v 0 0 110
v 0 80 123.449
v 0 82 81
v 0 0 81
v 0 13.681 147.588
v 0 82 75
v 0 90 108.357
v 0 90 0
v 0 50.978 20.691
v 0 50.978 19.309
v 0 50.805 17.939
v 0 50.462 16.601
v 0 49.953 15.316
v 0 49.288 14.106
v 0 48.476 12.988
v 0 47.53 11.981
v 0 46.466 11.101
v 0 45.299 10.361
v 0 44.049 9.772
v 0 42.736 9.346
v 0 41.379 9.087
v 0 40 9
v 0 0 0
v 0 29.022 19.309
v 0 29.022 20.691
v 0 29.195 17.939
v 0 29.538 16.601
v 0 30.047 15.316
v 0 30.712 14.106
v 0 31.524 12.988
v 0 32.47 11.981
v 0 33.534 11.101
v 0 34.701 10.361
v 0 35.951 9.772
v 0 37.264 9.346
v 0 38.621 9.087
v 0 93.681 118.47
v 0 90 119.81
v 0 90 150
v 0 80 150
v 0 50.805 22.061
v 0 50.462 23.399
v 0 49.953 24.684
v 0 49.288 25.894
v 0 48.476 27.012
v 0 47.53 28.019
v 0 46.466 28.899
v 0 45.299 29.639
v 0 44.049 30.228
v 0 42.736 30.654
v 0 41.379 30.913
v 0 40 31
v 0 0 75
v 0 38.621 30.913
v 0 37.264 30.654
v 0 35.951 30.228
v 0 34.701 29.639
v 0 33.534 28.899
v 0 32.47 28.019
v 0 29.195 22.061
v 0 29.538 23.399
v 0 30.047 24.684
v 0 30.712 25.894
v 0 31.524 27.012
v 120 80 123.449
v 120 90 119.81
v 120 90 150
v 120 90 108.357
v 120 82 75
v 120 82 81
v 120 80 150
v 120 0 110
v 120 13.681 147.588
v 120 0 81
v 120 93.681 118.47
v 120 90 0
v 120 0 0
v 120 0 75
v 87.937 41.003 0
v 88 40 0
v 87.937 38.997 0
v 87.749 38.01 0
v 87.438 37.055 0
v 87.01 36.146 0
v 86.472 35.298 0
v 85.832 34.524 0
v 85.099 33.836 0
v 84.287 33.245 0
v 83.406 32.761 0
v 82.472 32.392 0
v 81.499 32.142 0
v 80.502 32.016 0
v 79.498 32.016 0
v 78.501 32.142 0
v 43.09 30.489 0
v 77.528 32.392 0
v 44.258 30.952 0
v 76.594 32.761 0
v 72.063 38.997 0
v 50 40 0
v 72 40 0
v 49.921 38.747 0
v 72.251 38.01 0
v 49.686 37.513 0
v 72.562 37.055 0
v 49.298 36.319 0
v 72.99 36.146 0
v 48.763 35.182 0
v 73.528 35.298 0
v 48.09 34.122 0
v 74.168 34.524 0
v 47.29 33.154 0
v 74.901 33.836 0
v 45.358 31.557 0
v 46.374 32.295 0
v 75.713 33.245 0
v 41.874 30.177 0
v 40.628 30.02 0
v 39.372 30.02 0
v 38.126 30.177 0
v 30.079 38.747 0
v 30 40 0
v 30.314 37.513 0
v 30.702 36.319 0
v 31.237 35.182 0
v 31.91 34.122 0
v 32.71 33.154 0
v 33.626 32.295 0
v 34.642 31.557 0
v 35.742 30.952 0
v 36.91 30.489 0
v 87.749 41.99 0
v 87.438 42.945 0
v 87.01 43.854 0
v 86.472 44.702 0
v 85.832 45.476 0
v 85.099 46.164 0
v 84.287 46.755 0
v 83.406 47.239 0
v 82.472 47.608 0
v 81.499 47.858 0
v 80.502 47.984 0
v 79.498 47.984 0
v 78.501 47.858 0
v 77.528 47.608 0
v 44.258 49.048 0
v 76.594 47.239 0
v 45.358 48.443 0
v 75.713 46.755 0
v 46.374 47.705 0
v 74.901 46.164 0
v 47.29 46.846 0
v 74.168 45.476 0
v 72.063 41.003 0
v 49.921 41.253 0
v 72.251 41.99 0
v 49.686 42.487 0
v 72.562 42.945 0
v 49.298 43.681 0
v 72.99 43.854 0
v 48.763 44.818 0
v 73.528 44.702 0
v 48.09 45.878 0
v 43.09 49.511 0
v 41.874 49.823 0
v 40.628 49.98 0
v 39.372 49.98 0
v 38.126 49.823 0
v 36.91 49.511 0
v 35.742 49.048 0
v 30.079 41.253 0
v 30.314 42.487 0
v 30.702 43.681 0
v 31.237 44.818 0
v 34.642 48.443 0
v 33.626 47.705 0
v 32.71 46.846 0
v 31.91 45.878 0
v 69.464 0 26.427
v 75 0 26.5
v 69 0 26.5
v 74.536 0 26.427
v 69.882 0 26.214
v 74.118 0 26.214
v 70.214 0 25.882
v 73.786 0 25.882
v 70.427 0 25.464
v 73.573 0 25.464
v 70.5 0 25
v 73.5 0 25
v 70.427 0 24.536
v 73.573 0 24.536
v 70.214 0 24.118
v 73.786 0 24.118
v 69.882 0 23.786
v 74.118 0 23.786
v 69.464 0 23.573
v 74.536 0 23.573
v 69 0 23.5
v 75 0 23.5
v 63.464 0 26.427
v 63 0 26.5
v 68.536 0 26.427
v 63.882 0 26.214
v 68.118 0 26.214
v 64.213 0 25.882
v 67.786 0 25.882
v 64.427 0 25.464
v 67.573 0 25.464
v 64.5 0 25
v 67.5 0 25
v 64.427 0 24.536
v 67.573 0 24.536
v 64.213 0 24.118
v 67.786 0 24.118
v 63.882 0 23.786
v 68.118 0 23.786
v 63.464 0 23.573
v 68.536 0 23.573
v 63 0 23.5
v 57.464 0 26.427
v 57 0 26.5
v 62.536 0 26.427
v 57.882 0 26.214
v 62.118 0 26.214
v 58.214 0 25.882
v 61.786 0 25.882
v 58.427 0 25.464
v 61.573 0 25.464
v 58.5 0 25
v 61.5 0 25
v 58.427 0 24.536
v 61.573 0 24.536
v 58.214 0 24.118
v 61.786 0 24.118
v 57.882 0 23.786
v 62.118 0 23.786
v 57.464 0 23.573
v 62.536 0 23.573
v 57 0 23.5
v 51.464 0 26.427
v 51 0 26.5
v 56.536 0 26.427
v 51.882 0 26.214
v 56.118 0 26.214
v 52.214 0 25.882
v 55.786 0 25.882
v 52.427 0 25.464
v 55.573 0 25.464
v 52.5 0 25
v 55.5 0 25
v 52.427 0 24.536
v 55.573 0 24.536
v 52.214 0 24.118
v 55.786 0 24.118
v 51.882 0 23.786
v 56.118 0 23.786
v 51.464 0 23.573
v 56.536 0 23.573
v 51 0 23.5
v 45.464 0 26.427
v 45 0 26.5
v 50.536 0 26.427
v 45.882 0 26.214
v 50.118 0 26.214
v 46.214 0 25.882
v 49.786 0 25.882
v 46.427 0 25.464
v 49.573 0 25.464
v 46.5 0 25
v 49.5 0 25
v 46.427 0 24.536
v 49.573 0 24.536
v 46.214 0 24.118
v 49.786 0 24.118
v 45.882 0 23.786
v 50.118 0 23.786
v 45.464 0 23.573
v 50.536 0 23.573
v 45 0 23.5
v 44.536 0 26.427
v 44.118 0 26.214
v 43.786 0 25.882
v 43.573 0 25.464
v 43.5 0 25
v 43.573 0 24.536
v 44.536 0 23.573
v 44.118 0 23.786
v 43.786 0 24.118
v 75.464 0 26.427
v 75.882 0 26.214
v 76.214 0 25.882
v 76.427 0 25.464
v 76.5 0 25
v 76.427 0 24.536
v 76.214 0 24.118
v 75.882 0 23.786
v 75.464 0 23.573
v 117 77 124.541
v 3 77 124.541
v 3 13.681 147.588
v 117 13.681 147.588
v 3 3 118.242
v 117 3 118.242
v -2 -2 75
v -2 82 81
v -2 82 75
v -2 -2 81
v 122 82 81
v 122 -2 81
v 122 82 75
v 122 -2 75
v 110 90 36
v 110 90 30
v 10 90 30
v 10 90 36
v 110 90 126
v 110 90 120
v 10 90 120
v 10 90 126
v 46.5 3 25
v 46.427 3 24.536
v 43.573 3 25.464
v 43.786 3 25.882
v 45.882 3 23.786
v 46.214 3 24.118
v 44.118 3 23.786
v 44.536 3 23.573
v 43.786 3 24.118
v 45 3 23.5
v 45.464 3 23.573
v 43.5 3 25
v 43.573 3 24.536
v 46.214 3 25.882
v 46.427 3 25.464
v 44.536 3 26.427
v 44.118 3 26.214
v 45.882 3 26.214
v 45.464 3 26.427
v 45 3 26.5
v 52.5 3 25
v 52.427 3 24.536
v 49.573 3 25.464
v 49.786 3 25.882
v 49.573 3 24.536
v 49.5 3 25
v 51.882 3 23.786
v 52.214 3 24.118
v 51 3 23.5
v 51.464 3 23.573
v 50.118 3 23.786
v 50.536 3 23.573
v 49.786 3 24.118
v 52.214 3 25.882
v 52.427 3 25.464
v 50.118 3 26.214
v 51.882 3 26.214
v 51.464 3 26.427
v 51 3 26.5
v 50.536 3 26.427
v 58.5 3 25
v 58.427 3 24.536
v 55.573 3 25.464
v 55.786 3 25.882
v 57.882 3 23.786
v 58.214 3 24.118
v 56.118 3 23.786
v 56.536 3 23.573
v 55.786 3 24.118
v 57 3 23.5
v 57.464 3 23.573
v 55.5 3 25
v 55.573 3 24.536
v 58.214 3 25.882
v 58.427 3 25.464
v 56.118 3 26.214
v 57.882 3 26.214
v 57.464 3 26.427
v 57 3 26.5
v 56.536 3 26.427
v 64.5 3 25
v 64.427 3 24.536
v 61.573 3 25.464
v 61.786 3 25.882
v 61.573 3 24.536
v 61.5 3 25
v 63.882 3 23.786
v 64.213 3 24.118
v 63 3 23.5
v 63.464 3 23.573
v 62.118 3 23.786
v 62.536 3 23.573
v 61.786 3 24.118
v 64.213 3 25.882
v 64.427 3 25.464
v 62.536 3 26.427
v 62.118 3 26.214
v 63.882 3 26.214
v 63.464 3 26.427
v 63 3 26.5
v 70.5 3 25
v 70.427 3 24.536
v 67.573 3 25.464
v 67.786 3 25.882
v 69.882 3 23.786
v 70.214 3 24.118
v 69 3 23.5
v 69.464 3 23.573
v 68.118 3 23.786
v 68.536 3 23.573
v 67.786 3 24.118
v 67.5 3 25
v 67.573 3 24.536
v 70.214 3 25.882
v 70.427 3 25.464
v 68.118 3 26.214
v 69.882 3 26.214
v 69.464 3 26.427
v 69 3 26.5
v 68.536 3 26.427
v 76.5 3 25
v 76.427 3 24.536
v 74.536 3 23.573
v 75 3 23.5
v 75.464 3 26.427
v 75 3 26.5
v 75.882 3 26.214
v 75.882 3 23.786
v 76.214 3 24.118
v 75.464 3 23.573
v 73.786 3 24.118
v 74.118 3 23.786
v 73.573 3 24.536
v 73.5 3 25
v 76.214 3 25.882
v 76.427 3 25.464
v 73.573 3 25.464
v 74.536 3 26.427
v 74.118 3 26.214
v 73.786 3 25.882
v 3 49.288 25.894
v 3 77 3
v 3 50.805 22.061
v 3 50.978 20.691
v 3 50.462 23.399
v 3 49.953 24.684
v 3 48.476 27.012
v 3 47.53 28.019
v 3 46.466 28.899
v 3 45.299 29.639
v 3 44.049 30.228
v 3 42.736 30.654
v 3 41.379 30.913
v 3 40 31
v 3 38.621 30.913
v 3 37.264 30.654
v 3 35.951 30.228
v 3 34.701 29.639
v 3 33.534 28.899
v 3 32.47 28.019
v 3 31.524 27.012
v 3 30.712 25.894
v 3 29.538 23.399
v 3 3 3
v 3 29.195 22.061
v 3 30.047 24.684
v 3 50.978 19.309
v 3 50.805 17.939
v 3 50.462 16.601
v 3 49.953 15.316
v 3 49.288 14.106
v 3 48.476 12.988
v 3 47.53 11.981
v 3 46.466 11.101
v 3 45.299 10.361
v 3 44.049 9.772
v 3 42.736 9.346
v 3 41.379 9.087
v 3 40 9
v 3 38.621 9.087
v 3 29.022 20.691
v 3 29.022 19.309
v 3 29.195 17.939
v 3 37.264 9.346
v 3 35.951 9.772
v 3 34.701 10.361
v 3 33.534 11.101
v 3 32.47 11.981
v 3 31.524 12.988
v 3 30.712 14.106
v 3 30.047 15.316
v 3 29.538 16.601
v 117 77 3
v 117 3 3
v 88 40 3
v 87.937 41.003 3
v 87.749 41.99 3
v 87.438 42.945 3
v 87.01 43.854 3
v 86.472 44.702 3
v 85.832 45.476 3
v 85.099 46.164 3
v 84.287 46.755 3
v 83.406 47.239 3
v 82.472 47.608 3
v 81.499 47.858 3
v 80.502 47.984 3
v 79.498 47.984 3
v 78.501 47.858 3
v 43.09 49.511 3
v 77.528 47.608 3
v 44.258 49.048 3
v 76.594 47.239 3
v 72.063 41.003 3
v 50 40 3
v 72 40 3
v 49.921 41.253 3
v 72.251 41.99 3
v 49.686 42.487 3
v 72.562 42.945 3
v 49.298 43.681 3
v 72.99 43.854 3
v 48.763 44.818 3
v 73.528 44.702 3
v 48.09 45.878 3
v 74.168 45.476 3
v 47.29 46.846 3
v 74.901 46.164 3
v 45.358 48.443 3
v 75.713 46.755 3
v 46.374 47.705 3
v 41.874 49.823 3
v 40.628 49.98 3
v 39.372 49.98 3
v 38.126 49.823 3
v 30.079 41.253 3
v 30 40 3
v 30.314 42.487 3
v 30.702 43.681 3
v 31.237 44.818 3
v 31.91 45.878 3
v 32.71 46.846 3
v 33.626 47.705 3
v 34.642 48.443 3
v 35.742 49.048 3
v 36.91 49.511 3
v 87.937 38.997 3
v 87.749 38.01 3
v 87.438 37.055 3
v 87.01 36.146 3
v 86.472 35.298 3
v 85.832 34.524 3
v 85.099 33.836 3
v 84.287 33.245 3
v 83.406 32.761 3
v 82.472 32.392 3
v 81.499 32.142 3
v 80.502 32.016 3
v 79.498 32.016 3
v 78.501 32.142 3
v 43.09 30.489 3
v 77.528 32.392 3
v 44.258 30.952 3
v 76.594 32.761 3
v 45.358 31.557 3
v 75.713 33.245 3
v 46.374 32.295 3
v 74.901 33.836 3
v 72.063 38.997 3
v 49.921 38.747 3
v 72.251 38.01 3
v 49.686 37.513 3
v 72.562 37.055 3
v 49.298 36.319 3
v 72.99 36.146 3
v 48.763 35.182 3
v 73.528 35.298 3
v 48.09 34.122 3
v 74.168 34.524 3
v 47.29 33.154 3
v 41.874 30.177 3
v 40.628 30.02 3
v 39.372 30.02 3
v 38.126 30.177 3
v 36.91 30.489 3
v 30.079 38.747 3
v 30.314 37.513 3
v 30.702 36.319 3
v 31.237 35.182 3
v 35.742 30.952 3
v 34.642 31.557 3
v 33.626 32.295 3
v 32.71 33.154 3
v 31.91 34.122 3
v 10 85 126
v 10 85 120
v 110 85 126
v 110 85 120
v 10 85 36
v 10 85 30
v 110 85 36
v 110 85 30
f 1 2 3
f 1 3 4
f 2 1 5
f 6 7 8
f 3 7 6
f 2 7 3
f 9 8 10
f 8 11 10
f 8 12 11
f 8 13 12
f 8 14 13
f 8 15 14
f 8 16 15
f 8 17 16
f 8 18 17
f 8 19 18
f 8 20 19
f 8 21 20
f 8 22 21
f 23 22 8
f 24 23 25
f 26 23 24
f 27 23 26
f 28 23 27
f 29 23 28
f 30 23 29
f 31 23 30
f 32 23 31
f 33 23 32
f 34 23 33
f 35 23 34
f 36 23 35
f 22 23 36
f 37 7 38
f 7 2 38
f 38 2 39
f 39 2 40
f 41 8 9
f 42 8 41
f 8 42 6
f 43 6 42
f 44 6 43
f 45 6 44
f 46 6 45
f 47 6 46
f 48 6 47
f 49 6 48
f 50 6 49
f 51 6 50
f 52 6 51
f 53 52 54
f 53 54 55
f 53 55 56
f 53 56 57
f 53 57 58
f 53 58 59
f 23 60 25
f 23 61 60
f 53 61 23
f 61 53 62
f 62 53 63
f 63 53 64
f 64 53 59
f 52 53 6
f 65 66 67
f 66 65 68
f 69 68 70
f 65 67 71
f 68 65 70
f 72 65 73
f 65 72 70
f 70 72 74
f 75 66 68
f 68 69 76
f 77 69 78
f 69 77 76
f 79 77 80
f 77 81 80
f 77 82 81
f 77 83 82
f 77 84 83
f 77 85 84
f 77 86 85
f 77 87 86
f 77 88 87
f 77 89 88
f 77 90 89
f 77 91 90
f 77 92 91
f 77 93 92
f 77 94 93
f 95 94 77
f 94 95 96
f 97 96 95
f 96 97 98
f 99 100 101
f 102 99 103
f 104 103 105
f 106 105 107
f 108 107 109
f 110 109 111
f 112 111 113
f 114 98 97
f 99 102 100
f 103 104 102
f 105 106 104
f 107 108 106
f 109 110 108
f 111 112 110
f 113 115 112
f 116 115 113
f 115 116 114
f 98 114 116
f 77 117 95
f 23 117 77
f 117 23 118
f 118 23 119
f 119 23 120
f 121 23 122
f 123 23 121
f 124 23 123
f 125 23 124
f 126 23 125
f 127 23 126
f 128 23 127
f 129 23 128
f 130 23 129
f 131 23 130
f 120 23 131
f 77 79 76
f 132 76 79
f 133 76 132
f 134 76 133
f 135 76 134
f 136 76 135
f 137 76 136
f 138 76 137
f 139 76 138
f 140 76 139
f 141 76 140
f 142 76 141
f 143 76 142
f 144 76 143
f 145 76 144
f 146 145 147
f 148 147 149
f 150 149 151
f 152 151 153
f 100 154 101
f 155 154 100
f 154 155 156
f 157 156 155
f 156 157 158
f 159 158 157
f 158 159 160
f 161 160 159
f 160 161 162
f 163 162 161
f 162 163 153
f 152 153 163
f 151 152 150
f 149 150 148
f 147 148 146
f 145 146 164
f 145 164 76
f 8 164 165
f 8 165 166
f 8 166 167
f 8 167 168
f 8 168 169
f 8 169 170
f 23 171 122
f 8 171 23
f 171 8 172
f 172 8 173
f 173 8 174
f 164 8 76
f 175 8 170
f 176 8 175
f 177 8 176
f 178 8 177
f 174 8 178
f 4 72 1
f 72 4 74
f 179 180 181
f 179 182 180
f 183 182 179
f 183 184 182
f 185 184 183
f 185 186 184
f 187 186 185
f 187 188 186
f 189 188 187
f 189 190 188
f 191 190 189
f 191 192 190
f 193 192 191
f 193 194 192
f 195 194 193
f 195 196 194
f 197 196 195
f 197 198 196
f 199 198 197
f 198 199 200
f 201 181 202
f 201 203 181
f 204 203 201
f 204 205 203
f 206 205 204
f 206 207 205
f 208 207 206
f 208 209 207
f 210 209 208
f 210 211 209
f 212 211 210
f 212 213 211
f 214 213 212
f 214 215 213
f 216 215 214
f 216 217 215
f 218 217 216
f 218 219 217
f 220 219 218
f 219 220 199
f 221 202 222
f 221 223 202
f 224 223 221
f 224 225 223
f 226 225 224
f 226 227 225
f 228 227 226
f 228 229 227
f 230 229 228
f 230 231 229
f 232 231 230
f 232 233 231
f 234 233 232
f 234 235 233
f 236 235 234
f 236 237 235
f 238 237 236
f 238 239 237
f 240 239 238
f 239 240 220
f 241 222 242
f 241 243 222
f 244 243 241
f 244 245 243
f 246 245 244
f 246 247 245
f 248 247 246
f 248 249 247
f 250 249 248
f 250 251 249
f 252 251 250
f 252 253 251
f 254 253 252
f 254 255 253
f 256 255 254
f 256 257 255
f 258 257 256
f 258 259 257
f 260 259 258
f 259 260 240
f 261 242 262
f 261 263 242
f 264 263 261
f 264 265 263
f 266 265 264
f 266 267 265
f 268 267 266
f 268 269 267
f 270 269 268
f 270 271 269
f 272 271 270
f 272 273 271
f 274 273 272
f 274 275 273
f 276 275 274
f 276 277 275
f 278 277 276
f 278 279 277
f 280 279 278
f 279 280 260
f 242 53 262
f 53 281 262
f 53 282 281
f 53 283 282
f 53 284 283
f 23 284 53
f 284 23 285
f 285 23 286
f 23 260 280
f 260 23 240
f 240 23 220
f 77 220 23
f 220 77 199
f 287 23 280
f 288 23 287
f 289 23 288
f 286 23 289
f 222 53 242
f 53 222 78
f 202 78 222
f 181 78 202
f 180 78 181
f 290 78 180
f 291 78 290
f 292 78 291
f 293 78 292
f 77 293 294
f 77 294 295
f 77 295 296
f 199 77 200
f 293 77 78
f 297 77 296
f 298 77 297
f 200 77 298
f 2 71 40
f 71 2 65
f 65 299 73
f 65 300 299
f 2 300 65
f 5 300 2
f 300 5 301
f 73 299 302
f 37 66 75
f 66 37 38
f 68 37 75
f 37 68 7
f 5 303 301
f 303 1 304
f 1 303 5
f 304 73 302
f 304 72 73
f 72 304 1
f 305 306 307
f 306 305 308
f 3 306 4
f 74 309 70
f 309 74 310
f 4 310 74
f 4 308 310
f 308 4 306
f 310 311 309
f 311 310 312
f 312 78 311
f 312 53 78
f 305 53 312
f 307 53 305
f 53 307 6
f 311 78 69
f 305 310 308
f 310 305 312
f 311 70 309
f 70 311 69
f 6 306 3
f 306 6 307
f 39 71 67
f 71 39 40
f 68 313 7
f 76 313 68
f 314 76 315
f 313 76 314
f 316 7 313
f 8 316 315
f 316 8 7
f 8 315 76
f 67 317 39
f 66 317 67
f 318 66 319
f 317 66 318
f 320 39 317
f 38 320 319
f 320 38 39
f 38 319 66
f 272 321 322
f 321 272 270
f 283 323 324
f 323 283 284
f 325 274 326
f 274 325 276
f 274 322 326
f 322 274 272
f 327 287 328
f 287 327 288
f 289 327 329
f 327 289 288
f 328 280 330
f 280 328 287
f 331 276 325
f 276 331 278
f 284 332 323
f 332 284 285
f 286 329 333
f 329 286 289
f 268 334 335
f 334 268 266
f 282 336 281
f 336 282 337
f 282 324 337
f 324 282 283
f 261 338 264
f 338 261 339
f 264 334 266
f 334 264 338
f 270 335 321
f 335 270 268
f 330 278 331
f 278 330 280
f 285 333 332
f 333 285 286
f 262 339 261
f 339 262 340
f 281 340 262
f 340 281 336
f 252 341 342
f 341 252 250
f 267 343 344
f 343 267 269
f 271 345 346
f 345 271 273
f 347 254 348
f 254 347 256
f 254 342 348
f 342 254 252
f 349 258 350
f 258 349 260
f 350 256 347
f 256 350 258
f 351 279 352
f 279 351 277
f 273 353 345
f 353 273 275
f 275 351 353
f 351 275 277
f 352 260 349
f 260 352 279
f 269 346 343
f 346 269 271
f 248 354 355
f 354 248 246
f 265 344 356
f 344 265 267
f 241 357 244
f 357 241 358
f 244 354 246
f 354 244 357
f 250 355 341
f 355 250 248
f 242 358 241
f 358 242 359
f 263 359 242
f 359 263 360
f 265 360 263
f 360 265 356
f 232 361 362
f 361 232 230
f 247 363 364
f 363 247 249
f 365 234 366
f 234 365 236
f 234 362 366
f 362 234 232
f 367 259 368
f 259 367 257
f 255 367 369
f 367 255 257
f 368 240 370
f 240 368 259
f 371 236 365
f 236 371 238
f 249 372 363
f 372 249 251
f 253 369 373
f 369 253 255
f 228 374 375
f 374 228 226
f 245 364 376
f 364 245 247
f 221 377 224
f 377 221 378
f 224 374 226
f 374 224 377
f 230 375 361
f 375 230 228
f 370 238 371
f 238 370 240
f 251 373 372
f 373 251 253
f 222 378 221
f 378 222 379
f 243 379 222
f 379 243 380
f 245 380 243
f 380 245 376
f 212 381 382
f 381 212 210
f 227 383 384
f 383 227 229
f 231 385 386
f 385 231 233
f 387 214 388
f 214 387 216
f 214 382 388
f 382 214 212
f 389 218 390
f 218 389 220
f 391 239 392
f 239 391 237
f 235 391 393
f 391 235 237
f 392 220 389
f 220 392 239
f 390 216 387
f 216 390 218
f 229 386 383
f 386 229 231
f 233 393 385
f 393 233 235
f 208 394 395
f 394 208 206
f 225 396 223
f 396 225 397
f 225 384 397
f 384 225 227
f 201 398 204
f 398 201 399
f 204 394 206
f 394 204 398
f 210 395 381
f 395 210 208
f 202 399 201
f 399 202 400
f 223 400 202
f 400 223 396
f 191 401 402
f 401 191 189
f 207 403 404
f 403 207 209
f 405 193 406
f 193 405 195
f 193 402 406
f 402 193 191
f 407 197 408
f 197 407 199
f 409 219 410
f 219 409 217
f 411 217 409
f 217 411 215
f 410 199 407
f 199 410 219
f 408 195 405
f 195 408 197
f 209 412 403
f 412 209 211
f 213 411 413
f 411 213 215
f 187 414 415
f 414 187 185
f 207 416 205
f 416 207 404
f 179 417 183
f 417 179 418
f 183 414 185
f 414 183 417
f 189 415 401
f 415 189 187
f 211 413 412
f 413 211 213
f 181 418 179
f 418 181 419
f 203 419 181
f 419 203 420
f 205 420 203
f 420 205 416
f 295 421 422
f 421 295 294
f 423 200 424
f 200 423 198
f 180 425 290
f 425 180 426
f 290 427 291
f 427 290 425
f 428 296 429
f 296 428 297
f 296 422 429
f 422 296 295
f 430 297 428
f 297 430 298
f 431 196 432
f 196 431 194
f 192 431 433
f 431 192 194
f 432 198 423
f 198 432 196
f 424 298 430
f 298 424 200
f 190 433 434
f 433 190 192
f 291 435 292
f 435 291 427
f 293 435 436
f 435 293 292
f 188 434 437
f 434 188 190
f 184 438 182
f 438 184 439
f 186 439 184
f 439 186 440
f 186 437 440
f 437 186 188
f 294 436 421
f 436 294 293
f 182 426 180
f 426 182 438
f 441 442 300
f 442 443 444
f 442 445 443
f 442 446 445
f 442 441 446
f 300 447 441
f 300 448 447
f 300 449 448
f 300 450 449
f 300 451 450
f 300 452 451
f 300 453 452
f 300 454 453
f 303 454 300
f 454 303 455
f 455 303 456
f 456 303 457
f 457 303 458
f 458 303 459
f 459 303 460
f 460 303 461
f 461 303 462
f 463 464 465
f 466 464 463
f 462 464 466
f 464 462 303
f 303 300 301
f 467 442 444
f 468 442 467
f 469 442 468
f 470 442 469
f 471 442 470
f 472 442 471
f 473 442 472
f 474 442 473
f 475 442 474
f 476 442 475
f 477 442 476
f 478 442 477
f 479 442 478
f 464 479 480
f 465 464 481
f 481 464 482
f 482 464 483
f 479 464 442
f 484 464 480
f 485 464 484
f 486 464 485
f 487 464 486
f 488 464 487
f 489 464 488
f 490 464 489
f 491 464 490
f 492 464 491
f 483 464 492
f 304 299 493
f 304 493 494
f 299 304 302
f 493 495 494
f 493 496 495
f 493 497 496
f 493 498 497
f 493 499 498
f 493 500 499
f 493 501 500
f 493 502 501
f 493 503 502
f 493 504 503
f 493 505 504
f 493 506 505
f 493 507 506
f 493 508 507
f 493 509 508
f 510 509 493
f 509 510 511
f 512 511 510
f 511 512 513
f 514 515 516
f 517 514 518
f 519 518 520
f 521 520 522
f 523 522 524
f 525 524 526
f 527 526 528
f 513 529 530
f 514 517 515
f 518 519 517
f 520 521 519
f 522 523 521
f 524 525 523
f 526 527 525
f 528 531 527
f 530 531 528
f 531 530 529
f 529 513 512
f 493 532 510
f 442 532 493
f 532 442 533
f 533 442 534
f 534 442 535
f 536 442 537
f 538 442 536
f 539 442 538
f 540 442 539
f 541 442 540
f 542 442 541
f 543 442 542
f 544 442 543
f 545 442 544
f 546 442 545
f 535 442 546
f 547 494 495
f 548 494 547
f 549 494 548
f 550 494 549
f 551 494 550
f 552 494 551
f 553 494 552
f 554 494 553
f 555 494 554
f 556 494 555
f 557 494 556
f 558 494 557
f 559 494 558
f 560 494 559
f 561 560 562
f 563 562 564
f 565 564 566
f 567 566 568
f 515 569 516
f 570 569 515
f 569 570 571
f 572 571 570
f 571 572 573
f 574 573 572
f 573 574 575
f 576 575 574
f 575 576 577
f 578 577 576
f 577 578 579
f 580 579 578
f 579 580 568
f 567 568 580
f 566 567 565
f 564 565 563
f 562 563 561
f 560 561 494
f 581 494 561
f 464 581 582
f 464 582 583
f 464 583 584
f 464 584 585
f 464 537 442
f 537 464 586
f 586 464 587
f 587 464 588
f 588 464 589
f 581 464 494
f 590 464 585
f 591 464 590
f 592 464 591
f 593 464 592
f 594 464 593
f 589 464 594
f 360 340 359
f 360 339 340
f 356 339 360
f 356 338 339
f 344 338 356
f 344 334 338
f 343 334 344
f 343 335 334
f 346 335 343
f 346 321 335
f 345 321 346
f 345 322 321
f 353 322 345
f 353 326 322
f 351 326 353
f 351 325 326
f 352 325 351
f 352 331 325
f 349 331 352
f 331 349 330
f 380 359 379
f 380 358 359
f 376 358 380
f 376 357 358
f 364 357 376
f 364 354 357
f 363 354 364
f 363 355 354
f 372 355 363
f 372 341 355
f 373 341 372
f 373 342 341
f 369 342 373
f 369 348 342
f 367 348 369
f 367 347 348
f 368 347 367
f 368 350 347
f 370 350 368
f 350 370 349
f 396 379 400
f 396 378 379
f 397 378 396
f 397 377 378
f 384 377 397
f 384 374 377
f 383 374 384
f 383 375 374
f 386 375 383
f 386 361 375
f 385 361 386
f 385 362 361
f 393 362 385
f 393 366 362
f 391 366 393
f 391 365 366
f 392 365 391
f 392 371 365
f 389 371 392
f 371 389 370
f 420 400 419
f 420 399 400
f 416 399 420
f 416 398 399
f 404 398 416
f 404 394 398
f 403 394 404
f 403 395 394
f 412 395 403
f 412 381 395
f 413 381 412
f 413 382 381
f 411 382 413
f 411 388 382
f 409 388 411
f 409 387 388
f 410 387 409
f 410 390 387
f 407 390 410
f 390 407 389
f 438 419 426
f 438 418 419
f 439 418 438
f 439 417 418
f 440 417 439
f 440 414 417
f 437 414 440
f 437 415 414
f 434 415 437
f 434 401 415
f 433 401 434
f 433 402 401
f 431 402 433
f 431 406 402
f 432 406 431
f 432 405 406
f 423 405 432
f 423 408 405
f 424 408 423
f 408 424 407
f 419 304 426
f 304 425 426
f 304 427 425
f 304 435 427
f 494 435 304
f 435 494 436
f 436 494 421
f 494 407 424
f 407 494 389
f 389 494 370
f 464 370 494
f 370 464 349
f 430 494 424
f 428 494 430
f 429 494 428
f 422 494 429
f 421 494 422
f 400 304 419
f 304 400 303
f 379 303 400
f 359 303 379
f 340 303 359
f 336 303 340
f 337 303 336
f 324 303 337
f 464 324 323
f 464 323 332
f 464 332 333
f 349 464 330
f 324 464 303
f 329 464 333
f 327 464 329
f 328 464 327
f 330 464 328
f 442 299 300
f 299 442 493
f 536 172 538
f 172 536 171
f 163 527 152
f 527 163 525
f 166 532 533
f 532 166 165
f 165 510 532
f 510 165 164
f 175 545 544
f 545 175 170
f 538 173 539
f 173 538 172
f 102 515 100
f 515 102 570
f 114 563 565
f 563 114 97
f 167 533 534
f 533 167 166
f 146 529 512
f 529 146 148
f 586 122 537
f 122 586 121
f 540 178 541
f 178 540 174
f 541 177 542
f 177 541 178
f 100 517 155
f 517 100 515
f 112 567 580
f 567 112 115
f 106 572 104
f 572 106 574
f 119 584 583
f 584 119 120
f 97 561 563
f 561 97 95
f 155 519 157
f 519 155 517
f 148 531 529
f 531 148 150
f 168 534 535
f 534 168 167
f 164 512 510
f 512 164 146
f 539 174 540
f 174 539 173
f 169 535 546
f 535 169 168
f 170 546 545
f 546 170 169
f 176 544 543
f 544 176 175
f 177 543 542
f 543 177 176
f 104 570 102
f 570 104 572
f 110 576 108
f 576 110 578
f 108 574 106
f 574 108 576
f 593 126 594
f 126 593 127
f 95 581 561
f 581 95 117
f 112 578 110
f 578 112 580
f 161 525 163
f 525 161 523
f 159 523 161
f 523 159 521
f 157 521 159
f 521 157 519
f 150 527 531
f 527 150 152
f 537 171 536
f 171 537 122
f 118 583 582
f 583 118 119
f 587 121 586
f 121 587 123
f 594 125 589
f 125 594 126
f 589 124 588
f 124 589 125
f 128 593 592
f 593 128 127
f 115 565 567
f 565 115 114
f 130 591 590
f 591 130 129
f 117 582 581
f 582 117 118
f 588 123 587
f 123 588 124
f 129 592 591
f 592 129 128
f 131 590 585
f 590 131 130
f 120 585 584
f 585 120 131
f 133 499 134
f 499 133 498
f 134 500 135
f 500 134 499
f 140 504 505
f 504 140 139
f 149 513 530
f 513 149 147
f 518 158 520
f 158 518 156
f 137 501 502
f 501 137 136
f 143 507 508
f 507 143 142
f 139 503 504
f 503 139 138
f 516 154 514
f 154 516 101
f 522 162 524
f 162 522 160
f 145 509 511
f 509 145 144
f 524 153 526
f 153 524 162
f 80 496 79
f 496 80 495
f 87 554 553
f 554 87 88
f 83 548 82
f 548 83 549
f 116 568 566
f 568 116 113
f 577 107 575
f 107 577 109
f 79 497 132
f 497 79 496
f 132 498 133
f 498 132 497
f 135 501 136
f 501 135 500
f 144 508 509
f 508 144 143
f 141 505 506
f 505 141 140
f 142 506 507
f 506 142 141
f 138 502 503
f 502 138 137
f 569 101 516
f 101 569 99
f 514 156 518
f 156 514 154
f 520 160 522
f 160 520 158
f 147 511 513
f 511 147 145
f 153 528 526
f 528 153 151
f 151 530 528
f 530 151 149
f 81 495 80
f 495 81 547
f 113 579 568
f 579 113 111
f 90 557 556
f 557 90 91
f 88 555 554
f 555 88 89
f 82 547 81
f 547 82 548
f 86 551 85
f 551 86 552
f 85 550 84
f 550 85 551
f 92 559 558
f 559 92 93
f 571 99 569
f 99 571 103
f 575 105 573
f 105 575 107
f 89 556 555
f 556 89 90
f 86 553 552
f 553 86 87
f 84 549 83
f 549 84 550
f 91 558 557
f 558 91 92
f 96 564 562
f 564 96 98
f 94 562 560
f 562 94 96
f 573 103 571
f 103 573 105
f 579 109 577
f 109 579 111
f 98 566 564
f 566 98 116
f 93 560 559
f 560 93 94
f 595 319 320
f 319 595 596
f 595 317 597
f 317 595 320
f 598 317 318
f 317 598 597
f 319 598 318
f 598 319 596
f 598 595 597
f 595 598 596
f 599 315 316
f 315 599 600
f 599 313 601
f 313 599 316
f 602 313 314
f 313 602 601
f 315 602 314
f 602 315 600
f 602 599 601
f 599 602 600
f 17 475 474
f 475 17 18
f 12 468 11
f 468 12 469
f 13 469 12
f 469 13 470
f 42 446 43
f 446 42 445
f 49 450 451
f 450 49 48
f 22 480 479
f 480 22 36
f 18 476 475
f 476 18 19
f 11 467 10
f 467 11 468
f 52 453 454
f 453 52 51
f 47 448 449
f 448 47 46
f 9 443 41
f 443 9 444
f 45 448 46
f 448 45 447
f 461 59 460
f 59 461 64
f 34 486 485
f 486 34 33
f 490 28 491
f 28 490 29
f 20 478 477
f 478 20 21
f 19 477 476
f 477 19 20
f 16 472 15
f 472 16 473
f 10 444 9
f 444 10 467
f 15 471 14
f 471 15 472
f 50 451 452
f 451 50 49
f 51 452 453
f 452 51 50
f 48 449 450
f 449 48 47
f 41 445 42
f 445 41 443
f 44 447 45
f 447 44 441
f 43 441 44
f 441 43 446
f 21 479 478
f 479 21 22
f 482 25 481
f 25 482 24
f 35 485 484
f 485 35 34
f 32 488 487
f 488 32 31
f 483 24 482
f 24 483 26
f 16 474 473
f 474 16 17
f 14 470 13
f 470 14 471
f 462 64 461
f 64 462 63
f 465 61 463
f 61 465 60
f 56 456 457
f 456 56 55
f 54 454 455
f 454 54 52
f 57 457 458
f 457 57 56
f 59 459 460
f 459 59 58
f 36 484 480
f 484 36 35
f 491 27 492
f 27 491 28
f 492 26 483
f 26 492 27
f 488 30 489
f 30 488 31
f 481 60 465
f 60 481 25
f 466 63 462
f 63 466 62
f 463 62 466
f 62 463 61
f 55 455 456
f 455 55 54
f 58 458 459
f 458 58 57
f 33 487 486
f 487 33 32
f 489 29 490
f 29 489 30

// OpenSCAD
// Daneben Projekt - Smart Waste Bin Sensor Enclosure
// Parametric CAD Model (Measurements in mm)
// Open this file in OpenSCAD (https://openscad.org/) to view, modify, and export to STL/STEP.

// --- Overall Dimensions ---
width = 120;
depth = 80;
height = 150;
roof_angle = 20;
wall_thickness = 3;

module enclosure() {
    difference() {
        // --- 1. Main Outer Body ---
        union() {
            // Base rectangular box
            cube([width, depth, height - 40]);
            
            // Sloped roof (20 degrees for water shedding and solar angle)
            translate([0, 0, height - 40])
            rotate([-roof_angle, 0, 0])
            cube([width, depth / cos(roof_angle), 40]);
            
            // Drip Edge Overhang (protects the sealing gasket)
            translate([-2, -2, height/2]) 
            cube([width+4, depth+4, 6]);
            
            // Rear Mounting Bracket curve (matches waste bin handle radius)
            translate([0, depth, 0])
            cube([width, 10, height]);
        }
        
        // --- 2. Hollow Interior ---
        translate([wall_thickness, wall_thickness, wall_thickness])
        cube([width-(wall_thickness*2), depth-(wall_thickness*2), height]);
        
        // --- 3. Solar Panel Recess (Top Roof) ---
        // Fits a standard 100x60mm mini solar panel
        translate([10, 10, height - 12])
        rotate([-roof_angle, 0, 0])
        cube([100, 60, 5]);

        // --- 4. Camera Window Hole (Bottom Face) ---
        // 20mm diameter, to be sealed with borosilicate glass and UV glue
        translate([width/3, depth/2, -5])
        cylinder(h=15, r=10, $fn=50);

        // --- 5. Distance Sensor Hole (Bottom Face) ---
        // 16mm diameter for an ultrasonic JSN-SR04T transducer
        translate([2*width/3, depth/2, -5])
        cylinder(h=15, r=8, $fn=50);
        
        // --- 6. Speaker / Audio Vents (Front Face) ---
        // Acoustic vents to be sealed with hydrophobic ePTFE (Gore-Tex) membrane inside
        for(i=[-15 : 6 : 15]) {
            translate([width/2 + i, -5, 25])
            rotate([-90, 0, 0])
            cylinder(h=15, r=1.5, $fn=20);
        }
        
        // --- 7. Mounting Strap Slots (Rear Bracket) ---
        // For heavy-duty steel bands or industrial zip-ties
        translate([10, depth+5, height - 30])
        cube([width-20, 15, 6]);
        
        translate([10, depth+5, 30])
        cube([width-20, 15, 6]);
        
        // --- 8. Battery Tube Hole (Side or Bottom) ---
        // For sliding in the 18650 cartridge
        translate([-5, depth/2, 20])
        rotate([0, 90, 0])
        cylinder(h=20, r=11, $fn=50);
    }
}

// Render the enclosure
enclosure();
